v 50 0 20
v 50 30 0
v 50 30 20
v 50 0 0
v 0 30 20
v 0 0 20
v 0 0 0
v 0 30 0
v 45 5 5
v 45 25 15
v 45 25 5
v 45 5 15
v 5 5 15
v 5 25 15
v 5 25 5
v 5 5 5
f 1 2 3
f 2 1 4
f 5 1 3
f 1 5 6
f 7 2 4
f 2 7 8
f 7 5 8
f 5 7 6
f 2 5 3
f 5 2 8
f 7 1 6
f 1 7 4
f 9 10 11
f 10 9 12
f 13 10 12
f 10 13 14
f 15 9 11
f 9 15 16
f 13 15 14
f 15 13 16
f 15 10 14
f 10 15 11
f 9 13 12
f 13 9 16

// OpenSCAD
module with_negative_space(width, depth, height, spacing) {
  difference() {
    cube([width, depth, height]);
    translate([spacing, spacing, spacing])
    cube([width - 2 * spacing, depth - 2 * spacing, height - 2 * spacing]);
  }
}

with_negative_space(width = 50, depth = 30, height = 20, spacing = 5);
